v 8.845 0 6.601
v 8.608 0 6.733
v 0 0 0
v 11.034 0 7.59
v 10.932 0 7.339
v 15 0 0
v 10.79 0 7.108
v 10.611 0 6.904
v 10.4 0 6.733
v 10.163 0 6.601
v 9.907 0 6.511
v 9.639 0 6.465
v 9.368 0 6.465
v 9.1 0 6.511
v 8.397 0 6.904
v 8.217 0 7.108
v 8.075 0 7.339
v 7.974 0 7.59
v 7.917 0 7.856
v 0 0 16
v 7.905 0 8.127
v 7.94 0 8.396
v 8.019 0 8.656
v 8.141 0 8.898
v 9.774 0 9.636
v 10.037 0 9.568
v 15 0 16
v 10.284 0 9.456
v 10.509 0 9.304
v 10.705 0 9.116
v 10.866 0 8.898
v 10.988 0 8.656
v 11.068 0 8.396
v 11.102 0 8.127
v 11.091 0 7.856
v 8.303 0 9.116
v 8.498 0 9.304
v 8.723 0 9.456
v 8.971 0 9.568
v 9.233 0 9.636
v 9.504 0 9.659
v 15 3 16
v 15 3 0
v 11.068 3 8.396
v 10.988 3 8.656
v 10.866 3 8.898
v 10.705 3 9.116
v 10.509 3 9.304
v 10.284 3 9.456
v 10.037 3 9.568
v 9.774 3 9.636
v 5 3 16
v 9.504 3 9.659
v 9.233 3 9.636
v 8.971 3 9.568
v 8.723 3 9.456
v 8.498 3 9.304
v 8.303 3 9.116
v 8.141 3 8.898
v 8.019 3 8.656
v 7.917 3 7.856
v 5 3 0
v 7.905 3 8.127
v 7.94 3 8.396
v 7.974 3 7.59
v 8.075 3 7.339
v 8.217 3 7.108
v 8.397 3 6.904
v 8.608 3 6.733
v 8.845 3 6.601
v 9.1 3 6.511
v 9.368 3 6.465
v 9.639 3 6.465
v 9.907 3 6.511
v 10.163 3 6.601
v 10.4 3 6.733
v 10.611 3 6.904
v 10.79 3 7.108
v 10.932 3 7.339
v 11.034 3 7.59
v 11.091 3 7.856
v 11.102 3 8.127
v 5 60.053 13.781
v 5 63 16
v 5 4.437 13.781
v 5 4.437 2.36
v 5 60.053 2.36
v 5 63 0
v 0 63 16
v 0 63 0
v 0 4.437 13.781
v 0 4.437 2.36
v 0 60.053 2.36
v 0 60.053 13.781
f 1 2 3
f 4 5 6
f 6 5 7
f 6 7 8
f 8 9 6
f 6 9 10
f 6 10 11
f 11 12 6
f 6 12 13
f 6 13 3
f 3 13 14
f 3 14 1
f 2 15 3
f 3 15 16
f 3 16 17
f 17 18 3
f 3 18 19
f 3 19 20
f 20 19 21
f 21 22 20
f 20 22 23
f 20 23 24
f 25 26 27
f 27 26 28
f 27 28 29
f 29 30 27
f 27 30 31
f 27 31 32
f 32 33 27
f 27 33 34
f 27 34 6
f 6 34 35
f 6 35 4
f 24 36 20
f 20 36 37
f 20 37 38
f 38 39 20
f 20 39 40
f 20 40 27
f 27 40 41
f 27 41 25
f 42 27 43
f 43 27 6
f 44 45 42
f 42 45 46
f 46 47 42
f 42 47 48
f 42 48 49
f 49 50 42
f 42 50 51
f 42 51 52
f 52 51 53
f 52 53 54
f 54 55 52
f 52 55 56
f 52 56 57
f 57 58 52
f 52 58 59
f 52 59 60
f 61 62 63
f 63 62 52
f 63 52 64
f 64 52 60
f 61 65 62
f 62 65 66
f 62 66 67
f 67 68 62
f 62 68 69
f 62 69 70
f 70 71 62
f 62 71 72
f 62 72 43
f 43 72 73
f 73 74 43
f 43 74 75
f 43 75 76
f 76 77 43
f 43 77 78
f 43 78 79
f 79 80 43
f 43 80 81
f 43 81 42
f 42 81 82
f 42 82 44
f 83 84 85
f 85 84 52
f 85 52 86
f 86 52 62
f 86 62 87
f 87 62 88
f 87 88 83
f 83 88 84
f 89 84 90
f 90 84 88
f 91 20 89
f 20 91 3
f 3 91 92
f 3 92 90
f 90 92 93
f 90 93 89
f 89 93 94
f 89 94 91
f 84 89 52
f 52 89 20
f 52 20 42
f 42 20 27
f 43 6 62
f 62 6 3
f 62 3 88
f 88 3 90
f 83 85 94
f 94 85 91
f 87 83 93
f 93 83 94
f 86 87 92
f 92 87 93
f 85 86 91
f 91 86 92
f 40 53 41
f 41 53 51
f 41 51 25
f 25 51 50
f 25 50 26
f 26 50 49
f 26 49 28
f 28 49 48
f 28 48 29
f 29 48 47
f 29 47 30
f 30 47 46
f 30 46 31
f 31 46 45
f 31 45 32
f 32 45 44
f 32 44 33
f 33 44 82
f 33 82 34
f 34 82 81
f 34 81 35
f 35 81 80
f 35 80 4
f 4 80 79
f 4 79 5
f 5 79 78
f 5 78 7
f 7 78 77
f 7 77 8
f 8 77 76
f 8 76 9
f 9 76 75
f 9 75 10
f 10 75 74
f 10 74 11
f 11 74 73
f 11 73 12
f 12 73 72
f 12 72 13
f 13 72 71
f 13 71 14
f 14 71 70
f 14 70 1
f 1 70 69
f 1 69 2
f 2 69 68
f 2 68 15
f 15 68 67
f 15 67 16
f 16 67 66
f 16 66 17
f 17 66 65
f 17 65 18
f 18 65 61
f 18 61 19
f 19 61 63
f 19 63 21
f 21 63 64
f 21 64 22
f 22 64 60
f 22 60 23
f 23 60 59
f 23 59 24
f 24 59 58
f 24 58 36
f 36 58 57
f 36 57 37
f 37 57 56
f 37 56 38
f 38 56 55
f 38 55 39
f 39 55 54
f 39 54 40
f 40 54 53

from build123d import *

# Parameters (mm, degrees)
EXTRUDE_1_DEPTH     = 16
SKETCH_2_W          = 11.421069603
SKETCH_2_H          = 55.615643281
CUT_EXTRUDE_1_DEPTH = 16
SKETCH_3_R          = 1.6
CUT_EXTRUDE_2_DEPTH = 16


with BuildPart() as part:
    # 草图1 → 凸台-拉伸1 (new body)
    with BuildSketch(Plane.XY):
        Polygon((0, 3), (0, 0), (5, 0), (15, 0), (15, 3), (5, 3), (5, 63), (0, 63), align=None)
    extrude(amount=EXTRUDE_1_DEPTH)

    # 草图2 → 切除-拉伸1 (cut)
    with BuildSketch(Plane(origin=(5, 0, 0), x_dir=(0, 0, -1), z_dir=(1, 0, 0))):
        with Locations((-8.070938321, 32.244852366)):
            Rectangle(SKETCH_2_W, SKETCH_2_H)
    extrude(amount=-CUT_EXTRUDE_1_DEPTH, mode=Mode.SUBTRACT)

    # 草图3 → 切除-拉伸2 (cut)
    with BuildSketch(Plane(origin=(0, 3, 0), x_dir=(1, 0, 0), z_dir=(0, 1, 0))):
        with Locations(Location((9.503642987, -8.058930676, 0), (0, 0, 270))):
            Circle(SKETCH_3_R)
    extrude(amount=-CUT_EXTRUDE_2_DEPTH, mode=Mode.SUBTRACT)


solid = part.part
